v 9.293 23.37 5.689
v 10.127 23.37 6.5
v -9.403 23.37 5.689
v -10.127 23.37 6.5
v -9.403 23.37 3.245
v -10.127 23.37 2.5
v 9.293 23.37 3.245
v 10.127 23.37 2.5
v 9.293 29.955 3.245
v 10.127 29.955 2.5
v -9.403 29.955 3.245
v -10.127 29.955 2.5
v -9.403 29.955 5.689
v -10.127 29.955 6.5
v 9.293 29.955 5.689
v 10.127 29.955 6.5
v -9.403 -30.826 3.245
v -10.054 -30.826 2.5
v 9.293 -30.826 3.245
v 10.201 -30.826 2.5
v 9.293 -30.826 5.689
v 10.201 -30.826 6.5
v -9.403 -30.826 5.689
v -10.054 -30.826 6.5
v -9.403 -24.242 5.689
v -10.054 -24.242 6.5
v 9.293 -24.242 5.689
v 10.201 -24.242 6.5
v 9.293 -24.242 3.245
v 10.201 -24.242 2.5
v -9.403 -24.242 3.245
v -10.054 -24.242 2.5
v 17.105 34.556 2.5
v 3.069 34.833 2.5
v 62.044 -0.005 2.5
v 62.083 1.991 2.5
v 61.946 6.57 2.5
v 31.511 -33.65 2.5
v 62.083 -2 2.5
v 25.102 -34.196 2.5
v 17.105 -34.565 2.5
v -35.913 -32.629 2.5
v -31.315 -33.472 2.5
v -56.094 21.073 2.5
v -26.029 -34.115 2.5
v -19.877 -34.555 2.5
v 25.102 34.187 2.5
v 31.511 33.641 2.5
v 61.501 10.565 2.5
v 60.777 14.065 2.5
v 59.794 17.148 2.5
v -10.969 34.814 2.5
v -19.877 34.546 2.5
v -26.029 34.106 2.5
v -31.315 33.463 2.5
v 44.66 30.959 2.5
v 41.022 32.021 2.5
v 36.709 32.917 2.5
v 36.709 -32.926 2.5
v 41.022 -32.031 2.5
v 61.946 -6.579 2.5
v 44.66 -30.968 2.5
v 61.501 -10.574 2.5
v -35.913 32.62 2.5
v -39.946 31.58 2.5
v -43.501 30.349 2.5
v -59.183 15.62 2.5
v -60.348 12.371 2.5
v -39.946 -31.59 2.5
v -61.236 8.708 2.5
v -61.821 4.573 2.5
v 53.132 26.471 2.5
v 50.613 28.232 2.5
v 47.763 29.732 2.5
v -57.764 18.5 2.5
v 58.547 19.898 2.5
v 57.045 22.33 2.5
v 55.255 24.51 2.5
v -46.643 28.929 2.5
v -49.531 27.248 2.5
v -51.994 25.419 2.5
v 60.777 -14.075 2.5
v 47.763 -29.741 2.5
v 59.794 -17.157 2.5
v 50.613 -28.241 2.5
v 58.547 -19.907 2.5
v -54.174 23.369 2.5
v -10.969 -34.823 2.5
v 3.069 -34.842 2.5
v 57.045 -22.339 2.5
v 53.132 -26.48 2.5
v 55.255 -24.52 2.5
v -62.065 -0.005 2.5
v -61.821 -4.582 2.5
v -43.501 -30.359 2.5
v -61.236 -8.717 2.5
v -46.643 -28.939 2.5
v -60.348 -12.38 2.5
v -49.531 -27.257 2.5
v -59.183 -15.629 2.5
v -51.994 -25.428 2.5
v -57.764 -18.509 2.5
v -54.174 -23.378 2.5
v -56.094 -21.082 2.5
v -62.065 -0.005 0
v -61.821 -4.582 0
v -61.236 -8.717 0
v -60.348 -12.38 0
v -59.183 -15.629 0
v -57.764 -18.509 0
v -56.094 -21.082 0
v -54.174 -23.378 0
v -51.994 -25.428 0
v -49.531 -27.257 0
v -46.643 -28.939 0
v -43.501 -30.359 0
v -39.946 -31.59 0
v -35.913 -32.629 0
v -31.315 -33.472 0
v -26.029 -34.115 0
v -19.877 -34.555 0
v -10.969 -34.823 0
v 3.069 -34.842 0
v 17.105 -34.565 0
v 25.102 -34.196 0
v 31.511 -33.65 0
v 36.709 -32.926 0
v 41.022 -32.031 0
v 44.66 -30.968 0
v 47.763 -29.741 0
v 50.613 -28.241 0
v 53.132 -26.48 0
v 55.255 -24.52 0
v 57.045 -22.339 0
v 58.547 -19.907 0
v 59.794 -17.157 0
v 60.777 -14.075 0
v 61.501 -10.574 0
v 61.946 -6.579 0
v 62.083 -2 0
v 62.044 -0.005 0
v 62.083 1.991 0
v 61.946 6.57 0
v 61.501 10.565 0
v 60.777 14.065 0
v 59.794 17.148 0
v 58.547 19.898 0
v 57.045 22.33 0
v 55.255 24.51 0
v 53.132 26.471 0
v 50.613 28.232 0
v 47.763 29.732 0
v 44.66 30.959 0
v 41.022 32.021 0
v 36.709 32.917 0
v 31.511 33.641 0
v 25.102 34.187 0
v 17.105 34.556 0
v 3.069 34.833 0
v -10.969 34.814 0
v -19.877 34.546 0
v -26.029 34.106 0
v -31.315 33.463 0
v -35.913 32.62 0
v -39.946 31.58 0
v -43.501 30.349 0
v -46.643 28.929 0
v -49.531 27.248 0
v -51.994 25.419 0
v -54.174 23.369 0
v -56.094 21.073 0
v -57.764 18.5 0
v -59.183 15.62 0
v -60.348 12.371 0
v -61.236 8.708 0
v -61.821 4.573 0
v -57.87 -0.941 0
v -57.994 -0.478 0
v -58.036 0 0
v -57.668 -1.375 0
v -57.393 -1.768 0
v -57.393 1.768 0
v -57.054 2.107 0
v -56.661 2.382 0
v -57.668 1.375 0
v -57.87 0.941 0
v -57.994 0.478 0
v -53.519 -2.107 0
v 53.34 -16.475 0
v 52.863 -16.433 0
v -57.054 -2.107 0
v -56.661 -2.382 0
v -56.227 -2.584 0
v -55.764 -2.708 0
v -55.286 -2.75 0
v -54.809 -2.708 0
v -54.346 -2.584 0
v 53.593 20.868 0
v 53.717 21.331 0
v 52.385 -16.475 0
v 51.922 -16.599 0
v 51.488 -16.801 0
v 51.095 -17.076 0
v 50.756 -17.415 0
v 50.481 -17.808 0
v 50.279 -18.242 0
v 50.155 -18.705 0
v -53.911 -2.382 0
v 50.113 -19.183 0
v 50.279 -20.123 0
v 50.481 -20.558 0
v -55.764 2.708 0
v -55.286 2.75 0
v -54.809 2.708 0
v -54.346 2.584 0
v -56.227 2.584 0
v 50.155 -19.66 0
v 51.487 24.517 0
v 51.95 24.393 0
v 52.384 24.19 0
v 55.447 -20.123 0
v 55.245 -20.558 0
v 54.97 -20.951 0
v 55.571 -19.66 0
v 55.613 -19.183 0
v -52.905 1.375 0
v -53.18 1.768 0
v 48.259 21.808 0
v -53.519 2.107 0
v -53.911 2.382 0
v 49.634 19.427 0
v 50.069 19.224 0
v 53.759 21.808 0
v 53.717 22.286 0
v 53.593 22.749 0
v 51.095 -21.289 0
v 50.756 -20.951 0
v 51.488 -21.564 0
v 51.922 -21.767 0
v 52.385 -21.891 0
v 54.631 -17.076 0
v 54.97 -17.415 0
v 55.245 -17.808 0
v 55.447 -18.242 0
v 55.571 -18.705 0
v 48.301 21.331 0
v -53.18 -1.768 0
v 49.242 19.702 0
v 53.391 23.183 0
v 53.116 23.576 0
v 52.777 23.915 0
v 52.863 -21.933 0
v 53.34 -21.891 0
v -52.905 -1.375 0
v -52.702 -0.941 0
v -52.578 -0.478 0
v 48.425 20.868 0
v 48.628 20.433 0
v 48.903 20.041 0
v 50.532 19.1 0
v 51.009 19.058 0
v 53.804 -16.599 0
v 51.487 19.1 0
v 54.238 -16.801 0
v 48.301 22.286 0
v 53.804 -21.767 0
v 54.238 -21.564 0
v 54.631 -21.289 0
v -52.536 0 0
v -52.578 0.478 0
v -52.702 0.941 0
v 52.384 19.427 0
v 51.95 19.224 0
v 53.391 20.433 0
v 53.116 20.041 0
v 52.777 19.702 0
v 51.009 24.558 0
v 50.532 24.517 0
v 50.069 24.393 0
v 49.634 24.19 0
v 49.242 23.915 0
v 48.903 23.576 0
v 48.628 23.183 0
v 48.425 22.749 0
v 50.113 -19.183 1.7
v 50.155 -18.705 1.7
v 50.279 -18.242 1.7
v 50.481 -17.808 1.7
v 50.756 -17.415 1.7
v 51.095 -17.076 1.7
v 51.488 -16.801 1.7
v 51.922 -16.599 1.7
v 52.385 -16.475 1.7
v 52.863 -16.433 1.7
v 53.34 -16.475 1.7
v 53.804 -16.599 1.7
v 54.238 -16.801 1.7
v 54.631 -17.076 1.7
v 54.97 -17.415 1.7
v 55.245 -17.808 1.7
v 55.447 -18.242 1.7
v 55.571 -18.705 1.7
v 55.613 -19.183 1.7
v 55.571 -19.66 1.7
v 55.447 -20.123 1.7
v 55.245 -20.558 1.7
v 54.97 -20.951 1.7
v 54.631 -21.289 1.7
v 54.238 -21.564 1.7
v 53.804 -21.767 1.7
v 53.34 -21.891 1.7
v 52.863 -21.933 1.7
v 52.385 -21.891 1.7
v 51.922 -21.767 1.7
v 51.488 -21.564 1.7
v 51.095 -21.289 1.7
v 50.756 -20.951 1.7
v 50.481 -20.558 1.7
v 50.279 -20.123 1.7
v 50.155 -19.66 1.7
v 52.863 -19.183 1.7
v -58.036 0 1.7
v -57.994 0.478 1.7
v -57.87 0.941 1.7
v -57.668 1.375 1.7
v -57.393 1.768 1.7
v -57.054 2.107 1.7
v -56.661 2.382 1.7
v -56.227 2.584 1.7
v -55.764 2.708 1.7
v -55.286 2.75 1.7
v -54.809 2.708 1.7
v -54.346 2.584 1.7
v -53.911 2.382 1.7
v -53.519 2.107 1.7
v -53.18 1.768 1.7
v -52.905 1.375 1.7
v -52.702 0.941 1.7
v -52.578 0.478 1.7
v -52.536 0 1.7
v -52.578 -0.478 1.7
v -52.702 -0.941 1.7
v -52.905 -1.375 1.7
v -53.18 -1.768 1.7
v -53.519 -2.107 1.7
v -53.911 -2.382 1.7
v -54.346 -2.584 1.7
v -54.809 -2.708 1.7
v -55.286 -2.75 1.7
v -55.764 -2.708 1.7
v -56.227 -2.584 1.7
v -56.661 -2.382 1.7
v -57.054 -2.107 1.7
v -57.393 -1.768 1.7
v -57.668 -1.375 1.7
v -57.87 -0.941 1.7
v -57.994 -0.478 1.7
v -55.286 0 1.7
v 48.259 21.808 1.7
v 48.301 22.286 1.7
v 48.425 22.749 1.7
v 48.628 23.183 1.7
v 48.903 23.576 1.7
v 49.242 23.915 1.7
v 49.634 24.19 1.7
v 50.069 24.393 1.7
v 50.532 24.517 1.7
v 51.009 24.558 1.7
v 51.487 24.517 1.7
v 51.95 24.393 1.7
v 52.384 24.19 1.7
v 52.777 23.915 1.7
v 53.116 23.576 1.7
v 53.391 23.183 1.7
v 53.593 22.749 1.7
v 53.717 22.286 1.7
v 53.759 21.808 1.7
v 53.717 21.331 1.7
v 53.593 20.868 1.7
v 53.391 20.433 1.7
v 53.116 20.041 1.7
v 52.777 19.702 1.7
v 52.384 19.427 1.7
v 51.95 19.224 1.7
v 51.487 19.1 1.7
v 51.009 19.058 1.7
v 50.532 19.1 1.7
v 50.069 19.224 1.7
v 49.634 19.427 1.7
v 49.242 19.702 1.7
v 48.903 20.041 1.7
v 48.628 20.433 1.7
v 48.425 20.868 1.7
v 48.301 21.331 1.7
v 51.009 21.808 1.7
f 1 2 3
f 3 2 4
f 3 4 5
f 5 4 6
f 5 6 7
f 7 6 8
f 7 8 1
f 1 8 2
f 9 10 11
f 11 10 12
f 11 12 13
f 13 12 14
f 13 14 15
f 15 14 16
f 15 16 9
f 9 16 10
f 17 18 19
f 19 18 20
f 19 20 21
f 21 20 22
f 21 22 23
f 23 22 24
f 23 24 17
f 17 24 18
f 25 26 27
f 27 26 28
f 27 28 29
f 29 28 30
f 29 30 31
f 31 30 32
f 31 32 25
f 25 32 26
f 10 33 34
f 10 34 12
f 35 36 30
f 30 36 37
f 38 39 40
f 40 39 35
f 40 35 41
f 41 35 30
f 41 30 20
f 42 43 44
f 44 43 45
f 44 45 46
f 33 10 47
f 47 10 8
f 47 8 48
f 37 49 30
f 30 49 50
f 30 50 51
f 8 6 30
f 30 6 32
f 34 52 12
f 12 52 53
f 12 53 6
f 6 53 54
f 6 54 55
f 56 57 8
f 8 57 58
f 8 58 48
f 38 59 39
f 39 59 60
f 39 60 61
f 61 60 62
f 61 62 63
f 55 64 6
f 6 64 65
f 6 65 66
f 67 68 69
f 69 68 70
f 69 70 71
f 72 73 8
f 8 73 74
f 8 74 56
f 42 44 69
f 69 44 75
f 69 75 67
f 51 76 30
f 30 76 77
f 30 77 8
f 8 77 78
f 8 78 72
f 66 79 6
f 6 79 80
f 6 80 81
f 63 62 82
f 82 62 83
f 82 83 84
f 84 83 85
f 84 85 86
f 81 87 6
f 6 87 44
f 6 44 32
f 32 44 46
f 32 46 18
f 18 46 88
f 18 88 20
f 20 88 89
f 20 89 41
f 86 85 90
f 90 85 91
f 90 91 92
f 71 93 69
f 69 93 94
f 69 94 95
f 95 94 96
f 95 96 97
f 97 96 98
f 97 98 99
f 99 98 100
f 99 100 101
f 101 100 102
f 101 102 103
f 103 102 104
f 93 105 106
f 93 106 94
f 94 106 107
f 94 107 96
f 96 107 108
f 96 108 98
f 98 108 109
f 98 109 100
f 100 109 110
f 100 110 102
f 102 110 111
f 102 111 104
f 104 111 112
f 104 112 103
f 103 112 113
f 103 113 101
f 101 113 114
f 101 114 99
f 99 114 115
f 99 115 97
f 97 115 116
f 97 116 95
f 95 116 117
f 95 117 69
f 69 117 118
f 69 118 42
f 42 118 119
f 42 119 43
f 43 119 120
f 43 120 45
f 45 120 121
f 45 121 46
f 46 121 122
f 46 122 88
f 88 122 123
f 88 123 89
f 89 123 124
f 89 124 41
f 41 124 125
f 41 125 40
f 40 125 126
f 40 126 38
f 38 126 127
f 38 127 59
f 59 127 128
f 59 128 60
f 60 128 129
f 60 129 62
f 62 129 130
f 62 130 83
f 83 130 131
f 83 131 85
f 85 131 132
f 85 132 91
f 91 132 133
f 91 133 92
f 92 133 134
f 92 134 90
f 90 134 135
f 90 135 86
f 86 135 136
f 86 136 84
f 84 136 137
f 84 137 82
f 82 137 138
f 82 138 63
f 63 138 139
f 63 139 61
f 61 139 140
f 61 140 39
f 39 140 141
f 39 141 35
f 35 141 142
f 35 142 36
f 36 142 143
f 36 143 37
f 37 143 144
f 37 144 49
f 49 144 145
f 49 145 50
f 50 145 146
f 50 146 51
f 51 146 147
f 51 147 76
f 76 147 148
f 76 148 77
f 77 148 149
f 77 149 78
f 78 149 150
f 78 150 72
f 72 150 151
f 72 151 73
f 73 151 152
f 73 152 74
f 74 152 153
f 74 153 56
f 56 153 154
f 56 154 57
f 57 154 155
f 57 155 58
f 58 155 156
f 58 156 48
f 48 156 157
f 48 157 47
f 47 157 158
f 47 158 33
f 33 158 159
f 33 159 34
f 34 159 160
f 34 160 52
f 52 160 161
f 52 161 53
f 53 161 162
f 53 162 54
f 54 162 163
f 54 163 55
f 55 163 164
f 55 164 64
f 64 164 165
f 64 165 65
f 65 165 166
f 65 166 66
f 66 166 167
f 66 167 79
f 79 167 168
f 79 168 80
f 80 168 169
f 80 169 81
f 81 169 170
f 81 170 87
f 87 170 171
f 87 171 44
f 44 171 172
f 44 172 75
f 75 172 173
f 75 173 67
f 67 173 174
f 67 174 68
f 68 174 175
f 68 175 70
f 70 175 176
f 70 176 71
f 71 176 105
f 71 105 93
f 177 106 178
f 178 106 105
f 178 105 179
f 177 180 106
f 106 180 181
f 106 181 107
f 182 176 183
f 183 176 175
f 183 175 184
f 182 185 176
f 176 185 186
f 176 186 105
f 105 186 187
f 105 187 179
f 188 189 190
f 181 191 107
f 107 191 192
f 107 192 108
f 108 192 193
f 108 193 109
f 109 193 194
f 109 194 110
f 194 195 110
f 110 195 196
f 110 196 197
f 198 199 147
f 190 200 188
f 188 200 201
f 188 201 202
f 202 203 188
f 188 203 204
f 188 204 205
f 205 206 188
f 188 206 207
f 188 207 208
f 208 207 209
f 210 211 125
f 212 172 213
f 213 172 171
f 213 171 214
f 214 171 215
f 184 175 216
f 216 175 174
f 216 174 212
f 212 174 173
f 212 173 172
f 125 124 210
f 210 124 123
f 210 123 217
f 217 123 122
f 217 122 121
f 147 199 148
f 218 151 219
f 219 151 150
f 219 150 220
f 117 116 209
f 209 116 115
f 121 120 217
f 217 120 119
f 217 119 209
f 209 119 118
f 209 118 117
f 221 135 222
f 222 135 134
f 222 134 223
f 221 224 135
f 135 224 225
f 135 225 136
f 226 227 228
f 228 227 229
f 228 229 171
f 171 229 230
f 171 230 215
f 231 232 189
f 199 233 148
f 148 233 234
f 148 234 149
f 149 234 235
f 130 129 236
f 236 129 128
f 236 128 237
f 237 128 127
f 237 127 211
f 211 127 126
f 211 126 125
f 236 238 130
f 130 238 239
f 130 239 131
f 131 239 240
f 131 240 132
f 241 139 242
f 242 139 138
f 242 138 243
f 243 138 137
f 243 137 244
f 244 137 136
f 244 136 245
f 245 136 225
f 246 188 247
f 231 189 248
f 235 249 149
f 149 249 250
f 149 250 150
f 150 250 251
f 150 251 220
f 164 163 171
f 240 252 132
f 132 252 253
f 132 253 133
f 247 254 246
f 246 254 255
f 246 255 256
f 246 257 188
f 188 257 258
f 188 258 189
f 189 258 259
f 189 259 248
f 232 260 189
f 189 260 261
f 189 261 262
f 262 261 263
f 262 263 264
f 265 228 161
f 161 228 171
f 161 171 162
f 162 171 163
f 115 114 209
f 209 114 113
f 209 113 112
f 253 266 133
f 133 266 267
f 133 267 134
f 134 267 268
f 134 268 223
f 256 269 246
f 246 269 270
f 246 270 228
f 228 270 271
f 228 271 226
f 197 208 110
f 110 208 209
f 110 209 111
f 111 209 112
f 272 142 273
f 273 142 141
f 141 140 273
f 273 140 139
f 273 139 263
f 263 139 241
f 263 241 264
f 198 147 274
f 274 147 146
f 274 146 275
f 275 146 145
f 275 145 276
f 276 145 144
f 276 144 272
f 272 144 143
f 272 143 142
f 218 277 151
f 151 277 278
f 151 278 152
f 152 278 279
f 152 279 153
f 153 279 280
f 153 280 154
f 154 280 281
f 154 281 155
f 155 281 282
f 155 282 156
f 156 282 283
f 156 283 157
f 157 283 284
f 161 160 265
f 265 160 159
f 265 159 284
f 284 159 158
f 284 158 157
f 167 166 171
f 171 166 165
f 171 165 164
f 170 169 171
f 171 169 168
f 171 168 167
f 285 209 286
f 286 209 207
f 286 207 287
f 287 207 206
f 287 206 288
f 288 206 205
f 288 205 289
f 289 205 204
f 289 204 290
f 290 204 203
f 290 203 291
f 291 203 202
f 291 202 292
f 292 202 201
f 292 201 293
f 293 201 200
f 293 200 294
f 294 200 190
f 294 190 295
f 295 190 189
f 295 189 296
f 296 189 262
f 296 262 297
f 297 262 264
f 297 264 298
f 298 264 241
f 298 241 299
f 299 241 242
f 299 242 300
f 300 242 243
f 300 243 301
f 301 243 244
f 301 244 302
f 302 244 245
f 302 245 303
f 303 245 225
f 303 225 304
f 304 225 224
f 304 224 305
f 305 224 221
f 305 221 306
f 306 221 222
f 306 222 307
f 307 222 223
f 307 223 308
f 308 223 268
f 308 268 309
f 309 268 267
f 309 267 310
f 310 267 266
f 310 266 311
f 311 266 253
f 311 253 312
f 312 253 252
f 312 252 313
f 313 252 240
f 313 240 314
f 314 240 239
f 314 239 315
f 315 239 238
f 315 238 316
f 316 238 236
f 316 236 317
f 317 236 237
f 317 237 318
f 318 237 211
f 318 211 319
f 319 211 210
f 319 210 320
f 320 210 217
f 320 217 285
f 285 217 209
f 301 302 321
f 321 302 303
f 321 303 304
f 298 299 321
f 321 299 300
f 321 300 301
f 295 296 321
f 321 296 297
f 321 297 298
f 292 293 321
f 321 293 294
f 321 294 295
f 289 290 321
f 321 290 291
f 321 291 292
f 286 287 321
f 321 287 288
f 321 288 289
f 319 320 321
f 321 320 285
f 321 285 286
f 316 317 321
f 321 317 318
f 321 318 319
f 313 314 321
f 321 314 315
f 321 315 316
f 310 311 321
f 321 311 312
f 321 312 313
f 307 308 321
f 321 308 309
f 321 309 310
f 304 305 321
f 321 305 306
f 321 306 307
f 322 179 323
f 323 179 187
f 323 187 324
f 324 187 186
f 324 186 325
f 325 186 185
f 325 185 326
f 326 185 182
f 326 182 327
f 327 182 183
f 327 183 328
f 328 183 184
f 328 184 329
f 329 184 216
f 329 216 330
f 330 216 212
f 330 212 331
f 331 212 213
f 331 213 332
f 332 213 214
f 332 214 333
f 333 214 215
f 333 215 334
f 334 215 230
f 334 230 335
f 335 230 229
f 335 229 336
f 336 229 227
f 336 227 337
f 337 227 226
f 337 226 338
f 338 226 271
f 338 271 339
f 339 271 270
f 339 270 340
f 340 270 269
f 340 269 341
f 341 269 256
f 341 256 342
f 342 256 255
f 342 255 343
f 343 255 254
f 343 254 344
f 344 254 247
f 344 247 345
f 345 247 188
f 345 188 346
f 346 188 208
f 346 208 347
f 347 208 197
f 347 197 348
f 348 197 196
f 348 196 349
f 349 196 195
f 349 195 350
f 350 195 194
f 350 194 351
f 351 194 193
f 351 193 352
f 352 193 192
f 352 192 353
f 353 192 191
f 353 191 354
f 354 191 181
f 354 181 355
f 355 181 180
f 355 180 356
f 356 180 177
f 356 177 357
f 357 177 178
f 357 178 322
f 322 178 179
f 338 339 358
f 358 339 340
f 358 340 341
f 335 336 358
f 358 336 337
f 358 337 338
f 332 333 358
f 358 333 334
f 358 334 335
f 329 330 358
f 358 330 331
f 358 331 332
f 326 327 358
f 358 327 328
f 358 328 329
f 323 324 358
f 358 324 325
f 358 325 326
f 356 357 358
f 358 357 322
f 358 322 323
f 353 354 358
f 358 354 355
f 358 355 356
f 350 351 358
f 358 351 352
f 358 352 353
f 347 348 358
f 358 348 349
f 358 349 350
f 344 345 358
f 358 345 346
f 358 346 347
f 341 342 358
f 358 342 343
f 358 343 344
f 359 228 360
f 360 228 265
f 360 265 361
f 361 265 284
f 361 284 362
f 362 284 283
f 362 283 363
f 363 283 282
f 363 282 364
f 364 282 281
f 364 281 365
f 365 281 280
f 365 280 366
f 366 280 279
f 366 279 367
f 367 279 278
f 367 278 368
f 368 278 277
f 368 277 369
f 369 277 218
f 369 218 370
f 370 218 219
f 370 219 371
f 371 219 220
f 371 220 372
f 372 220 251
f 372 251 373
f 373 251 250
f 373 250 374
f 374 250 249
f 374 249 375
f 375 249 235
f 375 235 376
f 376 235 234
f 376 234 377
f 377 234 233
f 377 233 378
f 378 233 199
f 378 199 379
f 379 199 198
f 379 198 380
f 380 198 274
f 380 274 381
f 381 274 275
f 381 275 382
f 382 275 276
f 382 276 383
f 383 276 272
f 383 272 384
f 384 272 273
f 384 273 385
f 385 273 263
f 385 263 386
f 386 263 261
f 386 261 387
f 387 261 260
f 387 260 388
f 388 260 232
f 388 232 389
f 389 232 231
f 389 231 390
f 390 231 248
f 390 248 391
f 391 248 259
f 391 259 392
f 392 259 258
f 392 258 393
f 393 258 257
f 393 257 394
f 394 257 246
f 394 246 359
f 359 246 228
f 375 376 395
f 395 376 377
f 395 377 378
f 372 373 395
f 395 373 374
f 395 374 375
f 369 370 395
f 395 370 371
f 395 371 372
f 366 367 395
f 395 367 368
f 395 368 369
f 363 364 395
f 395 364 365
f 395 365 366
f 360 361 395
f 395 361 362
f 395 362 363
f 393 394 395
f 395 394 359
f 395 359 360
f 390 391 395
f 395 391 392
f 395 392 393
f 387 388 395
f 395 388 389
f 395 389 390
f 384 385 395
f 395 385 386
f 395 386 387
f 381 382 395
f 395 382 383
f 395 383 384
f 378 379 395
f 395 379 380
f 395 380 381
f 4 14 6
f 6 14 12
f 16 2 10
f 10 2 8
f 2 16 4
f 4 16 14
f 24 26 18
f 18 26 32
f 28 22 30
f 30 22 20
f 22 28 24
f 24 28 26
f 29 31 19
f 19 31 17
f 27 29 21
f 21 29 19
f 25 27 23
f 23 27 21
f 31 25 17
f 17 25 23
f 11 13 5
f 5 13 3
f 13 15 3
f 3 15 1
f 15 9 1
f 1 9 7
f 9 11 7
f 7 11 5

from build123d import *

# Parameters (mm, degrees)
BOSS_EXTRUDE1_DEPTH     = 2.5
SKETCH4_R               = 2.75
CUT_EXTRUDE1_DEPTH      = 1.7
SKETCH6_W               = 20.25477878
SKETCH6_H               = 6.584524734
BOSS_EXTRUDE2_DEPTH     = 4
SKETCH7_W               = 20.25477878
SKETCH7_H               = 6.584524734
BOSS_EXTRUDE3_DEPTH     = 4
CUT_EXTRUDE2_DEPTH      = 53
CUT_EXTRUDE2_DEPTH_BACK = 44
SKETCH8_W               = 18.696515829
SKETCH8_H               = 2.443988997


with BuildPart() as part:
    # Sketch3 → Boss-Extrude1 (new body)
    with BuildSketch(Plane.XY):
        with BuildLine():
            add(Edge.make_bspline(
                [(-62.064505272, -0.004637852), (-61.621909117, -32.5598919), (-30.174527466, -35.195991578), (40.855407495, -34.494653581), (63.068334921, -31.044513609), (62.04382147, -0.004637852)],
                knots=[0, 0, 0, 0, 0.421952335, 0.521952335, 1, 1, 1, 1], degree=3))
            add(Edge.make_bspline(
                [(-62.064505272, -0.004637852), (-61.621909117, 32.550616197), (-30.174527466, 35.186715874), (40.855407495, 34.485377878), (63.068334921, 31.035237905), (62.04382147, -0.004637852)],
                knots=[0, 0, 0, 0, 0.421952335, 0.521952335, 1, 1, 1, 1], degree=3))
        make_face()
    extrude(amount=BOSS_EXTRUDE1_DEPTH)

    # Sketch4 → Cut-Extrude1 (cut)
    with BuildSketch(Plane.XY):
        with Locations((51.009218897, 21.808375926)):
            Circle(SKETCH4_R)
        with Locations((-55.286211949, 0)):
            Circle(SKETCH4_R)
        with Locations((52.862963879, -19.182859298)):
            Circle(SKETCH4_R)
    extrude(amount=CUT_EXTRUDE1_DEPTH, mode=Mode.SUBTRACT)

    # Sketch6 → Boss-Extrude2 (add)
    with BuildSketch(Plane.XY.offset(2.5)):
        with Locations((0, 26.662687323)):
            Rectangle(SKETCH6_W, SKETCH6_H)
    extrude(amount=BOSS_EXTRUDE2_DEPTH)

    # Sketch7 → Boss-Extrude3 (add)
    with BuildSketch(Plane.XY.offset(2.5)):
        with Locations((0.073481457, -27.534120602)):
            Rectangle(SKETCH7_W, SKETCH7_H)
    extrude(amount=BOSS_EXTRUDE3_DEPTH)

    # Sketch8 → Cut-Extrude2 (cut, two sides: drawn at the far end of the back side and taken through both)
    with BuildSketch(Plane(origin=(0, 0, 0), x_dir=(1, 0, 0), z_dir=(0, 1, 0)).offset(-CUT_EXTRUDE2_DEPTH_BACK)):
        with Locations((-0.05486909, -4.466718934)):
            Rectangle(SKETCH8_W, SKETCH8_H)
    extrude(amount=CUT_EXTRUDE2_DEPTH + CUT_EXTRUDE2_DEPTH_BACK, mode=Mode.SUBTRACT)


solid = part.part
